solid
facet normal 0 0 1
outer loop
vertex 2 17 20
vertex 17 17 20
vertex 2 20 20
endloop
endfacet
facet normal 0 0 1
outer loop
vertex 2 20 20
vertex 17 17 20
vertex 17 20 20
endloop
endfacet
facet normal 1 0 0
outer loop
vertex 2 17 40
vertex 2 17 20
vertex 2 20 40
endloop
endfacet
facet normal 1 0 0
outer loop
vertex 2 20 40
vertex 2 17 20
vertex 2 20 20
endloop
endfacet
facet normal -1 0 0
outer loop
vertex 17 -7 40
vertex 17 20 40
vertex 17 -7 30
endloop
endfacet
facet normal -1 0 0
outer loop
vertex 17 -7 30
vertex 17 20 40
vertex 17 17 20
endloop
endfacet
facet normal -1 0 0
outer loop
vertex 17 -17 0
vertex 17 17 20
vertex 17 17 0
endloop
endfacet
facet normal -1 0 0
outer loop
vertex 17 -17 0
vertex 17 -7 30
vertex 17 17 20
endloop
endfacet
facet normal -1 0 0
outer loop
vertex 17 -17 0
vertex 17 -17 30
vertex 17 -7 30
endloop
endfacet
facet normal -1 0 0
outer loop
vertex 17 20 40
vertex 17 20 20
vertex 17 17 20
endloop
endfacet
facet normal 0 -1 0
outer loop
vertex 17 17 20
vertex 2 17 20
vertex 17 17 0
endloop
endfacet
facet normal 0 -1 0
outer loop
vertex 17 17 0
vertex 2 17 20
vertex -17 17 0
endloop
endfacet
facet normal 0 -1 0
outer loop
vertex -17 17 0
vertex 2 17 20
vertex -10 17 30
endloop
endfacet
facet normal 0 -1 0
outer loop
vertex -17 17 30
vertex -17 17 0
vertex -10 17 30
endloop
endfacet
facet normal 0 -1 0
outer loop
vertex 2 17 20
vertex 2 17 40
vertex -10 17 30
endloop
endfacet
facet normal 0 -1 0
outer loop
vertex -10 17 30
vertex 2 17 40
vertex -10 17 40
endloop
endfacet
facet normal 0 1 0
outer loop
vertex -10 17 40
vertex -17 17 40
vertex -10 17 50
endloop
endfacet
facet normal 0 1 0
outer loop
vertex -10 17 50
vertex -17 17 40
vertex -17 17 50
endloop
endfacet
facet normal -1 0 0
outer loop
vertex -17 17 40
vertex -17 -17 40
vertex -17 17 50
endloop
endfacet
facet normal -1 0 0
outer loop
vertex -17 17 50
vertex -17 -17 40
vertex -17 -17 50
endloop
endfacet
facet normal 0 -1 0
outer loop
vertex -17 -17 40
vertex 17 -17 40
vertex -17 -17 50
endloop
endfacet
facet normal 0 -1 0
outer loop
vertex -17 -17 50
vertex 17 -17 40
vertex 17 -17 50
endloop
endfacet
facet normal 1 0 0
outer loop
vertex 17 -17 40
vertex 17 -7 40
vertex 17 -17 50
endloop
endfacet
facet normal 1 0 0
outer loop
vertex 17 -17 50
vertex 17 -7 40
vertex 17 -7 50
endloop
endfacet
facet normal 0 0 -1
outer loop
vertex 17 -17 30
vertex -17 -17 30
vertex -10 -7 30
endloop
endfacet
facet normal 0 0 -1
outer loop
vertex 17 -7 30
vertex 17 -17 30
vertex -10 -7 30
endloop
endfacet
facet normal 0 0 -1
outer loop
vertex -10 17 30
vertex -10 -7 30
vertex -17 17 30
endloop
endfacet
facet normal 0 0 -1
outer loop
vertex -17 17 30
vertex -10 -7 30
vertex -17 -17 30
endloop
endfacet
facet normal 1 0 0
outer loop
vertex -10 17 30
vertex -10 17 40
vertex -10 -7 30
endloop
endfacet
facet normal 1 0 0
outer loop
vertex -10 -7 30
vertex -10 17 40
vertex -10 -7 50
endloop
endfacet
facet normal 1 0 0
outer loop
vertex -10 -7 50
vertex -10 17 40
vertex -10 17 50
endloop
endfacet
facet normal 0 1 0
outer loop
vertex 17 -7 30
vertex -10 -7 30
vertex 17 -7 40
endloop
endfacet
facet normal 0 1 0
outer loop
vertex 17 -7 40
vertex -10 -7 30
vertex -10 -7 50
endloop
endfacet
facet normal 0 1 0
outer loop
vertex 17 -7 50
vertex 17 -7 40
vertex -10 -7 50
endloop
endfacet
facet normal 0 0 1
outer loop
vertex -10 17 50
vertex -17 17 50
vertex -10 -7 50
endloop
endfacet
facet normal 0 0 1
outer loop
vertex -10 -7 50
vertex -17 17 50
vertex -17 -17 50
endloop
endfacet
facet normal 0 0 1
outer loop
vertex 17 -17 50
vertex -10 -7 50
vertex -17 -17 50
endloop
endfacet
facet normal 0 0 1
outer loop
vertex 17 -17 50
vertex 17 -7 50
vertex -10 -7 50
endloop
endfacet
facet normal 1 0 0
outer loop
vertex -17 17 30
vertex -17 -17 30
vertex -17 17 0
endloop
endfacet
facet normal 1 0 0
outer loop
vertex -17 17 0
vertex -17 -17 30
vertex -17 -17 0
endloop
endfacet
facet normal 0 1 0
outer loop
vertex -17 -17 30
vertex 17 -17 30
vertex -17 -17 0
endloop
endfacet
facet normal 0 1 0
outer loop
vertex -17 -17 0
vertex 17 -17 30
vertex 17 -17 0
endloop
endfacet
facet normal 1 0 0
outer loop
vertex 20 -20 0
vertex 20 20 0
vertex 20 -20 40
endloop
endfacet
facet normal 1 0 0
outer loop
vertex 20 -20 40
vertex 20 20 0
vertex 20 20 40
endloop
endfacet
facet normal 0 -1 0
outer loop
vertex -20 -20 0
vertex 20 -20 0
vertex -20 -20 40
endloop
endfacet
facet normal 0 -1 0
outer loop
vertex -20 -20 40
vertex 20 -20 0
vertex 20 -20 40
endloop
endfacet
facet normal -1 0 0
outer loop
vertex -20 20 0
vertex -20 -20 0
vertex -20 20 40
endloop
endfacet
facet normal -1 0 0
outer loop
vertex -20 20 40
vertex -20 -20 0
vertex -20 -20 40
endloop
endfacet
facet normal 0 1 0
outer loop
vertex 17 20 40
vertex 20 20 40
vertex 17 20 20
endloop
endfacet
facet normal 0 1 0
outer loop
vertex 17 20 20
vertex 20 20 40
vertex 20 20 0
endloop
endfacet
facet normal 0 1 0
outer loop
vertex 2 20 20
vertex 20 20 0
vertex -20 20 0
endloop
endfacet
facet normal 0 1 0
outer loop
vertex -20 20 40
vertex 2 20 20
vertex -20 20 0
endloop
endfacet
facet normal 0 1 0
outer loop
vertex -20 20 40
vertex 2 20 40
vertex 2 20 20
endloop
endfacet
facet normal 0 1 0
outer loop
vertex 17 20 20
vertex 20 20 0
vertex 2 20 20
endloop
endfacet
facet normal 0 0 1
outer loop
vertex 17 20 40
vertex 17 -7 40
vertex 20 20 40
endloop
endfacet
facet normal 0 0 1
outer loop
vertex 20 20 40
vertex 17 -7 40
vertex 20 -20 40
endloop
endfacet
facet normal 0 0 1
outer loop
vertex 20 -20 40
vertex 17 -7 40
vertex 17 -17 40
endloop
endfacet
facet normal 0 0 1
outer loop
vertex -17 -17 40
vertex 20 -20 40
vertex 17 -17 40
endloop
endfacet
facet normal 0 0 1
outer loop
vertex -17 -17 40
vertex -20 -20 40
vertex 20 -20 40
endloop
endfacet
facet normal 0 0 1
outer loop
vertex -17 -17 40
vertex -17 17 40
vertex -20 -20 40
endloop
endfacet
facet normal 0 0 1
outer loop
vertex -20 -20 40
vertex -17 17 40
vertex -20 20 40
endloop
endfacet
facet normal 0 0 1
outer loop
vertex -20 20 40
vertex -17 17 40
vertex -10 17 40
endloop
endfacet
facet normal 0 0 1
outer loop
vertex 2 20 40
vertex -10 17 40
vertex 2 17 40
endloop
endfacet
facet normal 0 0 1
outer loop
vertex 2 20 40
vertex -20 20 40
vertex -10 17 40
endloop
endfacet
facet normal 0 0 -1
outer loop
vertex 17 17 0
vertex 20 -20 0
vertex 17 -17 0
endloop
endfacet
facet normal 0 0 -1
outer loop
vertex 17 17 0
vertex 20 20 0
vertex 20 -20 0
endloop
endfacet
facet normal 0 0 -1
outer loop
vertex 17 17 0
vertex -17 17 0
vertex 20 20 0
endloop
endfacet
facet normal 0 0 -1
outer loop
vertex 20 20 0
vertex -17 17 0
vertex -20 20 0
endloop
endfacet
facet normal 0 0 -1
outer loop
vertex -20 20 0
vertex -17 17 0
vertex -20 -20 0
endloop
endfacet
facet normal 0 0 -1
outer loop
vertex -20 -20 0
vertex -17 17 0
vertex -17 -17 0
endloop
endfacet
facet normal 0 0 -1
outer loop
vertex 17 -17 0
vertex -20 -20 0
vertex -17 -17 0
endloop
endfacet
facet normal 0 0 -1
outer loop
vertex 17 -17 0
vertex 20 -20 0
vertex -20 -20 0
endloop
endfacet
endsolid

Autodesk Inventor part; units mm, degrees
ref_plane "YZ Plane" through (0, 0, 0) normal (1, 0, 0) x (0, 1, 0)
ref_plane "XZ Plane" through (0, 0, 0) normal (0, 1, 0) x (-1, 0, 0)
ref_plane "XY Plane" through (0, 0, 0) normal (0, 0, 1) x (1, 0, 0)
sketch "スケッチ1" plane through (0, 0, 0) normal (0, 0, 1) x (1, 0, 0)
  line L0 (-17, 17) -> (17, 17)
  line L1 (17, 17) -> (17, -17)
  line L2 (17, -17) -> (-17, -17)
  line L3 (-17, -17) -> (-17, 17)
  line L4 (-17, 17) -> (17, -17) construction
  line L5 (17, 17) -> (-17, -17) construction
  line L6 (-20, 20) -> (20, 20)
  line L7 (20, 20) -> (20, -20)
  line L8 (20, -20) -> (-20, -20)
  line L9 (-20, -20) -> (-20, 20)
  line L10 (-20, 20) -> (20, -20) construction
  line L11 (20, 20) -> (-20, -20) construction
  point P0 (0, 0)
  dimension "d0" = 34
  dimension "d1" = 34
  dimension "d2" = 40
  dimension "d3" = 40
extrude "押し出し1" add sketch "スケッチ1" along normal blind 40
sketch "スケッチ2" plane through (0, 0, 40) normal (0, 0, 1) x (1, 0, 0)
  line L0 (17, 17) -> (17, -17) projected
  line L1 (-17, -17) -> (-17, 17) projected
  line L2 (-17, -17) -> (17, -17)
  line L3 (17, -17) -> (17, -7)
  line L4 (17, -7) -> (-17, -7)
  line L5 (-17, -7) -> (-17, -17)
  line L6 (-17, 17) -> (-10, 17)
  line L7 (-10, 17) -> (-10, -7)
  line L8 (-10, -7) -> (-17, -7)
  line L9 (-17, -7) -> (-17, 17)
  point P0 (0, 0)
  dimension "d6" = 10
  dimension "d7" = 7
extrude "押し出し2" add sketch "スケッチ2" along normal blind 10 and the other way blind 10
sketch "スケッチ3" plane through (-20, 20, 0) normal (0, 1, 0) x (1, 0, 0)
  line L0 (40, -40) -> (37, -40)
  line L1 (37, -40) -> (37, -30)
  line L2 (37, -30) -> (40, -30)
  line L3 (40, -30) -> (40, -40)
  line L4 (37, -40) -> (22, -40)
  line L5 (22, -40) -> (22, -20)
  line L6 (22, -20) -> (37, -20)
  line L7 (37, -20) -> (37, -40)
  point P0 (20, 0)
  dimension "d12" = 3
  dimension "d13" = 10
  dimension "d14" = 15
  dimension "d15" = 20
extrude "押し出し3" cut sketch "スケッチ3" against normal blind 10 contours L4 L5 L6 L7 L1
properties part number "知能ロボコン角材延長"
